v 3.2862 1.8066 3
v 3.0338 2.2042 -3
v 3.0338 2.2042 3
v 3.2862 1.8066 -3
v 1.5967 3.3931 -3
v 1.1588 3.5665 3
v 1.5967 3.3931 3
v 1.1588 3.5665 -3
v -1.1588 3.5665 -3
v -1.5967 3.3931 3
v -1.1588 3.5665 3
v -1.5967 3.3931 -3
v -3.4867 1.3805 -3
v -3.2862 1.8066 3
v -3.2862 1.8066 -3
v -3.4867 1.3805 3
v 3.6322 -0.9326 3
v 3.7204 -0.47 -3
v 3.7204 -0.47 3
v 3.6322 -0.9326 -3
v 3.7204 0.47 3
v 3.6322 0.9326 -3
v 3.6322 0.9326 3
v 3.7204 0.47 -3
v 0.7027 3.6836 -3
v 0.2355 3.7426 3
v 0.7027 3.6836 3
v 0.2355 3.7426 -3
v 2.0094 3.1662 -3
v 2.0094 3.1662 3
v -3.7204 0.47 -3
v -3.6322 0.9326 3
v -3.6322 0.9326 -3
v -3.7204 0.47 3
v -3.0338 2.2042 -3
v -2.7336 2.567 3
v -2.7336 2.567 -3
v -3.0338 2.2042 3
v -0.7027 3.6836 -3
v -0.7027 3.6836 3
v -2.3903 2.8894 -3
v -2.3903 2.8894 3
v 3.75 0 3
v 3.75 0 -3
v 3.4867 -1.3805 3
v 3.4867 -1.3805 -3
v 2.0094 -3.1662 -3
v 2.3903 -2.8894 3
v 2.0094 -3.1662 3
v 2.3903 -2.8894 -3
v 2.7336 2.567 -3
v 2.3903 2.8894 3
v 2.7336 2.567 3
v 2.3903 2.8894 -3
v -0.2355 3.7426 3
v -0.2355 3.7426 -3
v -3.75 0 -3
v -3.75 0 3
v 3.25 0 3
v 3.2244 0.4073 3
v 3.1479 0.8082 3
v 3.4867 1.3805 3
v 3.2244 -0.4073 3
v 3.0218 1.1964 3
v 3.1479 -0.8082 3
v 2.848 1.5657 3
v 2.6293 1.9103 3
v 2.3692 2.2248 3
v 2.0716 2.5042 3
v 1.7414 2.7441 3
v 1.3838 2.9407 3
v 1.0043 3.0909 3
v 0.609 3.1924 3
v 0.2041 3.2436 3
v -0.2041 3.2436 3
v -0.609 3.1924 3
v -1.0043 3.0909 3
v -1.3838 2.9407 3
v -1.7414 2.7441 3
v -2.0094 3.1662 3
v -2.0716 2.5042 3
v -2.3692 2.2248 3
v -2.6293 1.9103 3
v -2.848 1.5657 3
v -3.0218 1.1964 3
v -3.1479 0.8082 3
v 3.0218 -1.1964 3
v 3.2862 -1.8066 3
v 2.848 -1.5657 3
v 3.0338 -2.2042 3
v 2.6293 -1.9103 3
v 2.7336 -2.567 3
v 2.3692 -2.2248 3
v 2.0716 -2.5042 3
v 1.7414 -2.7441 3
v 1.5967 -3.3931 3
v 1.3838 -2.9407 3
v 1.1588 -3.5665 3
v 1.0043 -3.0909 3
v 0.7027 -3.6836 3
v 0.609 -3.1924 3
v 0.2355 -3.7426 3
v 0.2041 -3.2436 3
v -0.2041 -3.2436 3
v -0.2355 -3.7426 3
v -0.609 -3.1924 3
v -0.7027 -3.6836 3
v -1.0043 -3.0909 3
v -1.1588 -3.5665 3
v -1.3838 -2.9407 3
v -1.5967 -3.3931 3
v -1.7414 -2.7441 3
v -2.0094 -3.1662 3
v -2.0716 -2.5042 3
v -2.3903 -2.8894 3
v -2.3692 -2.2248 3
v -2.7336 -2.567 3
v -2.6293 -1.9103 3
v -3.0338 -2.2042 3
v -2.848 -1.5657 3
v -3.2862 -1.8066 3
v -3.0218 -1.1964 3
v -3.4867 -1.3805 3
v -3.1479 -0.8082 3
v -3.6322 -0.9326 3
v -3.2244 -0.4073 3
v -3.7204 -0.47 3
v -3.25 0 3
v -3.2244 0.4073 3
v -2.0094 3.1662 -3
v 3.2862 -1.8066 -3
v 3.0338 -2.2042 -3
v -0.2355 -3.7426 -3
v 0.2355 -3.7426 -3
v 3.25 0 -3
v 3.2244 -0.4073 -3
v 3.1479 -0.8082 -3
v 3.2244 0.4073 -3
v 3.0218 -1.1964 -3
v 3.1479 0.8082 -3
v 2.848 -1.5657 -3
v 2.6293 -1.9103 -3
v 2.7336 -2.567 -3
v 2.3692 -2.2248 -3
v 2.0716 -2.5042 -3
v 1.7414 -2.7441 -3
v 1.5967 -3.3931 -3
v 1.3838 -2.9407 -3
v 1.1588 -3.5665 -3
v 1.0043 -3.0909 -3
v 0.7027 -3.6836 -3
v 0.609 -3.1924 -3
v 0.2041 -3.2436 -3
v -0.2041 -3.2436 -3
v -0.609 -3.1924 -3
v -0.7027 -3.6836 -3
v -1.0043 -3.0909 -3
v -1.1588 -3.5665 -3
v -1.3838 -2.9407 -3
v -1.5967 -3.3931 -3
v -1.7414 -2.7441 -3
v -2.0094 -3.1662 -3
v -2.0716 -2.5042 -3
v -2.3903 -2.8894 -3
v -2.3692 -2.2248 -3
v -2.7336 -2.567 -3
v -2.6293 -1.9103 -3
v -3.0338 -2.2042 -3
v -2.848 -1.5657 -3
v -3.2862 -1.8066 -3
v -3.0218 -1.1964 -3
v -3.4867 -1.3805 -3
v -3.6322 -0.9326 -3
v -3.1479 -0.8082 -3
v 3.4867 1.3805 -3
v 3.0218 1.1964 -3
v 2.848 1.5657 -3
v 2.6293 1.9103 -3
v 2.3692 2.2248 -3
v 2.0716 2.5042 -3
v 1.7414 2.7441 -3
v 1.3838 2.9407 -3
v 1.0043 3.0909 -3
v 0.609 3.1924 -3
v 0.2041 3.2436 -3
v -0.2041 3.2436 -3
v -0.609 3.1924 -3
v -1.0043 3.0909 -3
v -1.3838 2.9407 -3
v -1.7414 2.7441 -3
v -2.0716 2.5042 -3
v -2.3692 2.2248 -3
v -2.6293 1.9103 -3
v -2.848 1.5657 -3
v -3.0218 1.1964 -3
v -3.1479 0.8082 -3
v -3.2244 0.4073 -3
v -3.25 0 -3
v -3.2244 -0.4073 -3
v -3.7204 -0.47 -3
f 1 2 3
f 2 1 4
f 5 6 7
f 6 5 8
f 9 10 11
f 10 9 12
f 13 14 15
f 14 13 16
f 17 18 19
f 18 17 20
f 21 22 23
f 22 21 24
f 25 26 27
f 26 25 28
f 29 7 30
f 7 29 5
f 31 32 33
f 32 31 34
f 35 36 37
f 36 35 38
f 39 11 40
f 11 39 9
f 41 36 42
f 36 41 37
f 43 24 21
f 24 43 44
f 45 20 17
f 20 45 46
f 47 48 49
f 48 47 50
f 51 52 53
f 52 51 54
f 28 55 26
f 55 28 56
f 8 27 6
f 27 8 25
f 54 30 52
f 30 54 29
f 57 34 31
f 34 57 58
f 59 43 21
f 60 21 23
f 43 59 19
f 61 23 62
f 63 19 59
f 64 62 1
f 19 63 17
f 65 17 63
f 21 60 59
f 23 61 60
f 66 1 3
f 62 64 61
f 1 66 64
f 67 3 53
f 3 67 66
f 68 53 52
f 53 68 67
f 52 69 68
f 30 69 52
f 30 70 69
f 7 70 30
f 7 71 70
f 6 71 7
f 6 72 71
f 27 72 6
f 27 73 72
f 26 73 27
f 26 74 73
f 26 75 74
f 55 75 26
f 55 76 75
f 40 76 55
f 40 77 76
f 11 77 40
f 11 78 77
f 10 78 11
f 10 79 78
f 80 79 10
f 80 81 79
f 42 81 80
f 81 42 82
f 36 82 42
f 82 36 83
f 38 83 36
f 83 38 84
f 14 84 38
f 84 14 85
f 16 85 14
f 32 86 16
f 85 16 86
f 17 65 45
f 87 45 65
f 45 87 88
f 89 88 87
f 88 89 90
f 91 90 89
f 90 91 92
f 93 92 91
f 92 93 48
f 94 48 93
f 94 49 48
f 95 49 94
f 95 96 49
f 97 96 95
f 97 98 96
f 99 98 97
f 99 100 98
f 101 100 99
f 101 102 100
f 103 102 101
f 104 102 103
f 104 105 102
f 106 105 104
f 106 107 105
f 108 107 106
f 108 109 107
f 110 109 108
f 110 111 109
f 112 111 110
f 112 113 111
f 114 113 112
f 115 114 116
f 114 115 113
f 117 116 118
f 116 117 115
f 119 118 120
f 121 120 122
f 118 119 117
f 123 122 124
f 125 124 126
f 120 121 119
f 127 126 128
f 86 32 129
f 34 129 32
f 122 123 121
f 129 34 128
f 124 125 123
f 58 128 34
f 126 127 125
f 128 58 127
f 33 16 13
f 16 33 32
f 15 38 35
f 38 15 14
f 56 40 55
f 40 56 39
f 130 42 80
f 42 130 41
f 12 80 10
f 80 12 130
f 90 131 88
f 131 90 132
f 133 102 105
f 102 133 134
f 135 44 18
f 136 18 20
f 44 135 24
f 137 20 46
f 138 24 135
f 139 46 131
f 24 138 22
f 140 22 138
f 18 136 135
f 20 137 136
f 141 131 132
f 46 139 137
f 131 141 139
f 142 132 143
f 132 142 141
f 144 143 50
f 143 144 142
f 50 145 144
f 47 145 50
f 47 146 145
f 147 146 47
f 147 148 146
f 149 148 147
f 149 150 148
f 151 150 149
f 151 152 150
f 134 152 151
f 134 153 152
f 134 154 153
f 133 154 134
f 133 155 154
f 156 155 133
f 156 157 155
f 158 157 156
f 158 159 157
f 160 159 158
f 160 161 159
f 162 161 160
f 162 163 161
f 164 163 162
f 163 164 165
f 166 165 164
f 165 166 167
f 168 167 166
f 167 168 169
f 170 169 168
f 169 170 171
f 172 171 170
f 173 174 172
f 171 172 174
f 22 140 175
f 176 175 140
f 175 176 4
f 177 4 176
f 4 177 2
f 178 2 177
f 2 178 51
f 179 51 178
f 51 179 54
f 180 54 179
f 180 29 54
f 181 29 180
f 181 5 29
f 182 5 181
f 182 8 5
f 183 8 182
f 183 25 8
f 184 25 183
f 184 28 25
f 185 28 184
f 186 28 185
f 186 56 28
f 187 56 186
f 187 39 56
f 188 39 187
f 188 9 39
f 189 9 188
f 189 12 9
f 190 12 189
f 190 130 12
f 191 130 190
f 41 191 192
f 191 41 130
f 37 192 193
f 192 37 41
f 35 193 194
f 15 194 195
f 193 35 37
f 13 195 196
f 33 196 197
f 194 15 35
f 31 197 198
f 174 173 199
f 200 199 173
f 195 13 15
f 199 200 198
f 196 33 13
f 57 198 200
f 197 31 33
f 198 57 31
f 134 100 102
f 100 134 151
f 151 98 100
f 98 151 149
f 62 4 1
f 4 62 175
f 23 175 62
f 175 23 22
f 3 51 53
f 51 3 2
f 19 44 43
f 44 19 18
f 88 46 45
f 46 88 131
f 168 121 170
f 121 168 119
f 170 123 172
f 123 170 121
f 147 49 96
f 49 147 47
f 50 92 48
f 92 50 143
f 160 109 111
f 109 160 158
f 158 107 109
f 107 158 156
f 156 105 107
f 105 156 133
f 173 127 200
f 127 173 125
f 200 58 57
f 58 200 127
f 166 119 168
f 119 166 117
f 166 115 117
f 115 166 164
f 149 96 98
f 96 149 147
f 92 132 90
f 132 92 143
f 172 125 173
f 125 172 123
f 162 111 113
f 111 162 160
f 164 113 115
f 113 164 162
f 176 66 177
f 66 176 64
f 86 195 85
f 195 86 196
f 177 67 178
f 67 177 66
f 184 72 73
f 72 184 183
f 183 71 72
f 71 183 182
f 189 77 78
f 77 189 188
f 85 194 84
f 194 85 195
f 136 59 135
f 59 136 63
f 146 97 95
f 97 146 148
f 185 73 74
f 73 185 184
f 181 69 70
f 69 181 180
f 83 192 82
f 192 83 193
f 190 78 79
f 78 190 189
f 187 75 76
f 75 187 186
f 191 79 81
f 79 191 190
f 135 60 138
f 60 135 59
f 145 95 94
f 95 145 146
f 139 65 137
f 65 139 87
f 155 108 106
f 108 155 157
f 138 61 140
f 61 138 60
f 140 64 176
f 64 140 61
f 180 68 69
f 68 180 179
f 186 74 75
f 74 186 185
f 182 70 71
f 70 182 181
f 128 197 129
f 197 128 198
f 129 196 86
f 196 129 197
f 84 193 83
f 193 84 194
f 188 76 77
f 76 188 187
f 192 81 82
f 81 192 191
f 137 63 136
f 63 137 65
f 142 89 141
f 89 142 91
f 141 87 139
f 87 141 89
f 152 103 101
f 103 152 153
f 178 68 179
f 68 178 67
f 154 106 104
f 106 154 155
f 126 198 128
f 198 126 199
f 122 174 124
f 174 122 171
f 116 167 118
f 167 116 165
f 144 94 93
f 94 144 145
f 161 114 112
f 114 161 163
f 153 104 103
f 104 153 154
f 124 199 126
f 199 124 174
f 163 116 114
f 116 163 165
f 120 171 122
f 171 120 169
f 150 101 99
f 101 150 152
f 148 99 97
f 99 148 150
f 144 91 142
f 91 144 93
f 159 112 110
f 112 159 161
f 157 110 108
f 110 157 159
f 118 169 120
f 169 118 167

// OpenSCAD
$fn = 50;


difference() {
	union() {
		translate(v = [0, 0, -3.0000000000]) {
			cylinder(h = 6, r = 3.7500000000);
		}
	}
	union() {
		translate(v = [0, 0, -100.0000000000]) {
			cylinder(h = 200, r = 3.2500000000);
		}
	}
}
